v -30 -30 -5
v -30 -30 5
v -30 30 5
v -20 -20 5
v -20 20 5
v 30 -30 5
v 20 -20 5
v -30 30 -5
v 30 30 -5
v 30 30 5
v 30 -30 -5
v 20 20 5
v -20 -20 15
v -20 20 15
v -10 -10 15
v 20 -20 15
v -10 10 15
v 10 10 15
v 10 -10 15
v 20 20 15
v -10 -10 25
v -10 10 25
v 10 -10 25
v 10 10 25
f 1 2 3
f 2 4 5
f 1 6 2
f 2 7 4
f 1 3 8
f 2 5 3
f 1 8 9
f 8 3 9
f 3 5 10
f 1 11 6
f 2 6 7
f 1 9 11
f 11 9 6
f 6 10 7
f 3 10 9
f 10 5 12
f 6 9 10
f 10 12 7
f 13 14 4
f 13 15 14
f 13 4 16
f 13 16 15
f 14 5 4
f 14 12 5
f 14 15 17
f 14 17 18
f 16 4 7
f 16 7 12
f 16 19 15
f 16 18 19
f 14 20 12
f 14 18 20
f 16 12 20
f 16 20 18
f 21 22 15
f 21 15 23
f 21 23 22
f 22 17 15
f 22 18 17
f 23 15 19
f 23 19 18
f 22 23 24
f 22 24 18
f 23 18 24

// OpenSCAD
// 3段の階段状ピラミッド

cube([60, 60, 10], center = true);

translate([0, 0, 10])
    cube([40, 40, 10], center = true);

translate([0, 0, 20])
    cube([20, 20, 10], center = true);
